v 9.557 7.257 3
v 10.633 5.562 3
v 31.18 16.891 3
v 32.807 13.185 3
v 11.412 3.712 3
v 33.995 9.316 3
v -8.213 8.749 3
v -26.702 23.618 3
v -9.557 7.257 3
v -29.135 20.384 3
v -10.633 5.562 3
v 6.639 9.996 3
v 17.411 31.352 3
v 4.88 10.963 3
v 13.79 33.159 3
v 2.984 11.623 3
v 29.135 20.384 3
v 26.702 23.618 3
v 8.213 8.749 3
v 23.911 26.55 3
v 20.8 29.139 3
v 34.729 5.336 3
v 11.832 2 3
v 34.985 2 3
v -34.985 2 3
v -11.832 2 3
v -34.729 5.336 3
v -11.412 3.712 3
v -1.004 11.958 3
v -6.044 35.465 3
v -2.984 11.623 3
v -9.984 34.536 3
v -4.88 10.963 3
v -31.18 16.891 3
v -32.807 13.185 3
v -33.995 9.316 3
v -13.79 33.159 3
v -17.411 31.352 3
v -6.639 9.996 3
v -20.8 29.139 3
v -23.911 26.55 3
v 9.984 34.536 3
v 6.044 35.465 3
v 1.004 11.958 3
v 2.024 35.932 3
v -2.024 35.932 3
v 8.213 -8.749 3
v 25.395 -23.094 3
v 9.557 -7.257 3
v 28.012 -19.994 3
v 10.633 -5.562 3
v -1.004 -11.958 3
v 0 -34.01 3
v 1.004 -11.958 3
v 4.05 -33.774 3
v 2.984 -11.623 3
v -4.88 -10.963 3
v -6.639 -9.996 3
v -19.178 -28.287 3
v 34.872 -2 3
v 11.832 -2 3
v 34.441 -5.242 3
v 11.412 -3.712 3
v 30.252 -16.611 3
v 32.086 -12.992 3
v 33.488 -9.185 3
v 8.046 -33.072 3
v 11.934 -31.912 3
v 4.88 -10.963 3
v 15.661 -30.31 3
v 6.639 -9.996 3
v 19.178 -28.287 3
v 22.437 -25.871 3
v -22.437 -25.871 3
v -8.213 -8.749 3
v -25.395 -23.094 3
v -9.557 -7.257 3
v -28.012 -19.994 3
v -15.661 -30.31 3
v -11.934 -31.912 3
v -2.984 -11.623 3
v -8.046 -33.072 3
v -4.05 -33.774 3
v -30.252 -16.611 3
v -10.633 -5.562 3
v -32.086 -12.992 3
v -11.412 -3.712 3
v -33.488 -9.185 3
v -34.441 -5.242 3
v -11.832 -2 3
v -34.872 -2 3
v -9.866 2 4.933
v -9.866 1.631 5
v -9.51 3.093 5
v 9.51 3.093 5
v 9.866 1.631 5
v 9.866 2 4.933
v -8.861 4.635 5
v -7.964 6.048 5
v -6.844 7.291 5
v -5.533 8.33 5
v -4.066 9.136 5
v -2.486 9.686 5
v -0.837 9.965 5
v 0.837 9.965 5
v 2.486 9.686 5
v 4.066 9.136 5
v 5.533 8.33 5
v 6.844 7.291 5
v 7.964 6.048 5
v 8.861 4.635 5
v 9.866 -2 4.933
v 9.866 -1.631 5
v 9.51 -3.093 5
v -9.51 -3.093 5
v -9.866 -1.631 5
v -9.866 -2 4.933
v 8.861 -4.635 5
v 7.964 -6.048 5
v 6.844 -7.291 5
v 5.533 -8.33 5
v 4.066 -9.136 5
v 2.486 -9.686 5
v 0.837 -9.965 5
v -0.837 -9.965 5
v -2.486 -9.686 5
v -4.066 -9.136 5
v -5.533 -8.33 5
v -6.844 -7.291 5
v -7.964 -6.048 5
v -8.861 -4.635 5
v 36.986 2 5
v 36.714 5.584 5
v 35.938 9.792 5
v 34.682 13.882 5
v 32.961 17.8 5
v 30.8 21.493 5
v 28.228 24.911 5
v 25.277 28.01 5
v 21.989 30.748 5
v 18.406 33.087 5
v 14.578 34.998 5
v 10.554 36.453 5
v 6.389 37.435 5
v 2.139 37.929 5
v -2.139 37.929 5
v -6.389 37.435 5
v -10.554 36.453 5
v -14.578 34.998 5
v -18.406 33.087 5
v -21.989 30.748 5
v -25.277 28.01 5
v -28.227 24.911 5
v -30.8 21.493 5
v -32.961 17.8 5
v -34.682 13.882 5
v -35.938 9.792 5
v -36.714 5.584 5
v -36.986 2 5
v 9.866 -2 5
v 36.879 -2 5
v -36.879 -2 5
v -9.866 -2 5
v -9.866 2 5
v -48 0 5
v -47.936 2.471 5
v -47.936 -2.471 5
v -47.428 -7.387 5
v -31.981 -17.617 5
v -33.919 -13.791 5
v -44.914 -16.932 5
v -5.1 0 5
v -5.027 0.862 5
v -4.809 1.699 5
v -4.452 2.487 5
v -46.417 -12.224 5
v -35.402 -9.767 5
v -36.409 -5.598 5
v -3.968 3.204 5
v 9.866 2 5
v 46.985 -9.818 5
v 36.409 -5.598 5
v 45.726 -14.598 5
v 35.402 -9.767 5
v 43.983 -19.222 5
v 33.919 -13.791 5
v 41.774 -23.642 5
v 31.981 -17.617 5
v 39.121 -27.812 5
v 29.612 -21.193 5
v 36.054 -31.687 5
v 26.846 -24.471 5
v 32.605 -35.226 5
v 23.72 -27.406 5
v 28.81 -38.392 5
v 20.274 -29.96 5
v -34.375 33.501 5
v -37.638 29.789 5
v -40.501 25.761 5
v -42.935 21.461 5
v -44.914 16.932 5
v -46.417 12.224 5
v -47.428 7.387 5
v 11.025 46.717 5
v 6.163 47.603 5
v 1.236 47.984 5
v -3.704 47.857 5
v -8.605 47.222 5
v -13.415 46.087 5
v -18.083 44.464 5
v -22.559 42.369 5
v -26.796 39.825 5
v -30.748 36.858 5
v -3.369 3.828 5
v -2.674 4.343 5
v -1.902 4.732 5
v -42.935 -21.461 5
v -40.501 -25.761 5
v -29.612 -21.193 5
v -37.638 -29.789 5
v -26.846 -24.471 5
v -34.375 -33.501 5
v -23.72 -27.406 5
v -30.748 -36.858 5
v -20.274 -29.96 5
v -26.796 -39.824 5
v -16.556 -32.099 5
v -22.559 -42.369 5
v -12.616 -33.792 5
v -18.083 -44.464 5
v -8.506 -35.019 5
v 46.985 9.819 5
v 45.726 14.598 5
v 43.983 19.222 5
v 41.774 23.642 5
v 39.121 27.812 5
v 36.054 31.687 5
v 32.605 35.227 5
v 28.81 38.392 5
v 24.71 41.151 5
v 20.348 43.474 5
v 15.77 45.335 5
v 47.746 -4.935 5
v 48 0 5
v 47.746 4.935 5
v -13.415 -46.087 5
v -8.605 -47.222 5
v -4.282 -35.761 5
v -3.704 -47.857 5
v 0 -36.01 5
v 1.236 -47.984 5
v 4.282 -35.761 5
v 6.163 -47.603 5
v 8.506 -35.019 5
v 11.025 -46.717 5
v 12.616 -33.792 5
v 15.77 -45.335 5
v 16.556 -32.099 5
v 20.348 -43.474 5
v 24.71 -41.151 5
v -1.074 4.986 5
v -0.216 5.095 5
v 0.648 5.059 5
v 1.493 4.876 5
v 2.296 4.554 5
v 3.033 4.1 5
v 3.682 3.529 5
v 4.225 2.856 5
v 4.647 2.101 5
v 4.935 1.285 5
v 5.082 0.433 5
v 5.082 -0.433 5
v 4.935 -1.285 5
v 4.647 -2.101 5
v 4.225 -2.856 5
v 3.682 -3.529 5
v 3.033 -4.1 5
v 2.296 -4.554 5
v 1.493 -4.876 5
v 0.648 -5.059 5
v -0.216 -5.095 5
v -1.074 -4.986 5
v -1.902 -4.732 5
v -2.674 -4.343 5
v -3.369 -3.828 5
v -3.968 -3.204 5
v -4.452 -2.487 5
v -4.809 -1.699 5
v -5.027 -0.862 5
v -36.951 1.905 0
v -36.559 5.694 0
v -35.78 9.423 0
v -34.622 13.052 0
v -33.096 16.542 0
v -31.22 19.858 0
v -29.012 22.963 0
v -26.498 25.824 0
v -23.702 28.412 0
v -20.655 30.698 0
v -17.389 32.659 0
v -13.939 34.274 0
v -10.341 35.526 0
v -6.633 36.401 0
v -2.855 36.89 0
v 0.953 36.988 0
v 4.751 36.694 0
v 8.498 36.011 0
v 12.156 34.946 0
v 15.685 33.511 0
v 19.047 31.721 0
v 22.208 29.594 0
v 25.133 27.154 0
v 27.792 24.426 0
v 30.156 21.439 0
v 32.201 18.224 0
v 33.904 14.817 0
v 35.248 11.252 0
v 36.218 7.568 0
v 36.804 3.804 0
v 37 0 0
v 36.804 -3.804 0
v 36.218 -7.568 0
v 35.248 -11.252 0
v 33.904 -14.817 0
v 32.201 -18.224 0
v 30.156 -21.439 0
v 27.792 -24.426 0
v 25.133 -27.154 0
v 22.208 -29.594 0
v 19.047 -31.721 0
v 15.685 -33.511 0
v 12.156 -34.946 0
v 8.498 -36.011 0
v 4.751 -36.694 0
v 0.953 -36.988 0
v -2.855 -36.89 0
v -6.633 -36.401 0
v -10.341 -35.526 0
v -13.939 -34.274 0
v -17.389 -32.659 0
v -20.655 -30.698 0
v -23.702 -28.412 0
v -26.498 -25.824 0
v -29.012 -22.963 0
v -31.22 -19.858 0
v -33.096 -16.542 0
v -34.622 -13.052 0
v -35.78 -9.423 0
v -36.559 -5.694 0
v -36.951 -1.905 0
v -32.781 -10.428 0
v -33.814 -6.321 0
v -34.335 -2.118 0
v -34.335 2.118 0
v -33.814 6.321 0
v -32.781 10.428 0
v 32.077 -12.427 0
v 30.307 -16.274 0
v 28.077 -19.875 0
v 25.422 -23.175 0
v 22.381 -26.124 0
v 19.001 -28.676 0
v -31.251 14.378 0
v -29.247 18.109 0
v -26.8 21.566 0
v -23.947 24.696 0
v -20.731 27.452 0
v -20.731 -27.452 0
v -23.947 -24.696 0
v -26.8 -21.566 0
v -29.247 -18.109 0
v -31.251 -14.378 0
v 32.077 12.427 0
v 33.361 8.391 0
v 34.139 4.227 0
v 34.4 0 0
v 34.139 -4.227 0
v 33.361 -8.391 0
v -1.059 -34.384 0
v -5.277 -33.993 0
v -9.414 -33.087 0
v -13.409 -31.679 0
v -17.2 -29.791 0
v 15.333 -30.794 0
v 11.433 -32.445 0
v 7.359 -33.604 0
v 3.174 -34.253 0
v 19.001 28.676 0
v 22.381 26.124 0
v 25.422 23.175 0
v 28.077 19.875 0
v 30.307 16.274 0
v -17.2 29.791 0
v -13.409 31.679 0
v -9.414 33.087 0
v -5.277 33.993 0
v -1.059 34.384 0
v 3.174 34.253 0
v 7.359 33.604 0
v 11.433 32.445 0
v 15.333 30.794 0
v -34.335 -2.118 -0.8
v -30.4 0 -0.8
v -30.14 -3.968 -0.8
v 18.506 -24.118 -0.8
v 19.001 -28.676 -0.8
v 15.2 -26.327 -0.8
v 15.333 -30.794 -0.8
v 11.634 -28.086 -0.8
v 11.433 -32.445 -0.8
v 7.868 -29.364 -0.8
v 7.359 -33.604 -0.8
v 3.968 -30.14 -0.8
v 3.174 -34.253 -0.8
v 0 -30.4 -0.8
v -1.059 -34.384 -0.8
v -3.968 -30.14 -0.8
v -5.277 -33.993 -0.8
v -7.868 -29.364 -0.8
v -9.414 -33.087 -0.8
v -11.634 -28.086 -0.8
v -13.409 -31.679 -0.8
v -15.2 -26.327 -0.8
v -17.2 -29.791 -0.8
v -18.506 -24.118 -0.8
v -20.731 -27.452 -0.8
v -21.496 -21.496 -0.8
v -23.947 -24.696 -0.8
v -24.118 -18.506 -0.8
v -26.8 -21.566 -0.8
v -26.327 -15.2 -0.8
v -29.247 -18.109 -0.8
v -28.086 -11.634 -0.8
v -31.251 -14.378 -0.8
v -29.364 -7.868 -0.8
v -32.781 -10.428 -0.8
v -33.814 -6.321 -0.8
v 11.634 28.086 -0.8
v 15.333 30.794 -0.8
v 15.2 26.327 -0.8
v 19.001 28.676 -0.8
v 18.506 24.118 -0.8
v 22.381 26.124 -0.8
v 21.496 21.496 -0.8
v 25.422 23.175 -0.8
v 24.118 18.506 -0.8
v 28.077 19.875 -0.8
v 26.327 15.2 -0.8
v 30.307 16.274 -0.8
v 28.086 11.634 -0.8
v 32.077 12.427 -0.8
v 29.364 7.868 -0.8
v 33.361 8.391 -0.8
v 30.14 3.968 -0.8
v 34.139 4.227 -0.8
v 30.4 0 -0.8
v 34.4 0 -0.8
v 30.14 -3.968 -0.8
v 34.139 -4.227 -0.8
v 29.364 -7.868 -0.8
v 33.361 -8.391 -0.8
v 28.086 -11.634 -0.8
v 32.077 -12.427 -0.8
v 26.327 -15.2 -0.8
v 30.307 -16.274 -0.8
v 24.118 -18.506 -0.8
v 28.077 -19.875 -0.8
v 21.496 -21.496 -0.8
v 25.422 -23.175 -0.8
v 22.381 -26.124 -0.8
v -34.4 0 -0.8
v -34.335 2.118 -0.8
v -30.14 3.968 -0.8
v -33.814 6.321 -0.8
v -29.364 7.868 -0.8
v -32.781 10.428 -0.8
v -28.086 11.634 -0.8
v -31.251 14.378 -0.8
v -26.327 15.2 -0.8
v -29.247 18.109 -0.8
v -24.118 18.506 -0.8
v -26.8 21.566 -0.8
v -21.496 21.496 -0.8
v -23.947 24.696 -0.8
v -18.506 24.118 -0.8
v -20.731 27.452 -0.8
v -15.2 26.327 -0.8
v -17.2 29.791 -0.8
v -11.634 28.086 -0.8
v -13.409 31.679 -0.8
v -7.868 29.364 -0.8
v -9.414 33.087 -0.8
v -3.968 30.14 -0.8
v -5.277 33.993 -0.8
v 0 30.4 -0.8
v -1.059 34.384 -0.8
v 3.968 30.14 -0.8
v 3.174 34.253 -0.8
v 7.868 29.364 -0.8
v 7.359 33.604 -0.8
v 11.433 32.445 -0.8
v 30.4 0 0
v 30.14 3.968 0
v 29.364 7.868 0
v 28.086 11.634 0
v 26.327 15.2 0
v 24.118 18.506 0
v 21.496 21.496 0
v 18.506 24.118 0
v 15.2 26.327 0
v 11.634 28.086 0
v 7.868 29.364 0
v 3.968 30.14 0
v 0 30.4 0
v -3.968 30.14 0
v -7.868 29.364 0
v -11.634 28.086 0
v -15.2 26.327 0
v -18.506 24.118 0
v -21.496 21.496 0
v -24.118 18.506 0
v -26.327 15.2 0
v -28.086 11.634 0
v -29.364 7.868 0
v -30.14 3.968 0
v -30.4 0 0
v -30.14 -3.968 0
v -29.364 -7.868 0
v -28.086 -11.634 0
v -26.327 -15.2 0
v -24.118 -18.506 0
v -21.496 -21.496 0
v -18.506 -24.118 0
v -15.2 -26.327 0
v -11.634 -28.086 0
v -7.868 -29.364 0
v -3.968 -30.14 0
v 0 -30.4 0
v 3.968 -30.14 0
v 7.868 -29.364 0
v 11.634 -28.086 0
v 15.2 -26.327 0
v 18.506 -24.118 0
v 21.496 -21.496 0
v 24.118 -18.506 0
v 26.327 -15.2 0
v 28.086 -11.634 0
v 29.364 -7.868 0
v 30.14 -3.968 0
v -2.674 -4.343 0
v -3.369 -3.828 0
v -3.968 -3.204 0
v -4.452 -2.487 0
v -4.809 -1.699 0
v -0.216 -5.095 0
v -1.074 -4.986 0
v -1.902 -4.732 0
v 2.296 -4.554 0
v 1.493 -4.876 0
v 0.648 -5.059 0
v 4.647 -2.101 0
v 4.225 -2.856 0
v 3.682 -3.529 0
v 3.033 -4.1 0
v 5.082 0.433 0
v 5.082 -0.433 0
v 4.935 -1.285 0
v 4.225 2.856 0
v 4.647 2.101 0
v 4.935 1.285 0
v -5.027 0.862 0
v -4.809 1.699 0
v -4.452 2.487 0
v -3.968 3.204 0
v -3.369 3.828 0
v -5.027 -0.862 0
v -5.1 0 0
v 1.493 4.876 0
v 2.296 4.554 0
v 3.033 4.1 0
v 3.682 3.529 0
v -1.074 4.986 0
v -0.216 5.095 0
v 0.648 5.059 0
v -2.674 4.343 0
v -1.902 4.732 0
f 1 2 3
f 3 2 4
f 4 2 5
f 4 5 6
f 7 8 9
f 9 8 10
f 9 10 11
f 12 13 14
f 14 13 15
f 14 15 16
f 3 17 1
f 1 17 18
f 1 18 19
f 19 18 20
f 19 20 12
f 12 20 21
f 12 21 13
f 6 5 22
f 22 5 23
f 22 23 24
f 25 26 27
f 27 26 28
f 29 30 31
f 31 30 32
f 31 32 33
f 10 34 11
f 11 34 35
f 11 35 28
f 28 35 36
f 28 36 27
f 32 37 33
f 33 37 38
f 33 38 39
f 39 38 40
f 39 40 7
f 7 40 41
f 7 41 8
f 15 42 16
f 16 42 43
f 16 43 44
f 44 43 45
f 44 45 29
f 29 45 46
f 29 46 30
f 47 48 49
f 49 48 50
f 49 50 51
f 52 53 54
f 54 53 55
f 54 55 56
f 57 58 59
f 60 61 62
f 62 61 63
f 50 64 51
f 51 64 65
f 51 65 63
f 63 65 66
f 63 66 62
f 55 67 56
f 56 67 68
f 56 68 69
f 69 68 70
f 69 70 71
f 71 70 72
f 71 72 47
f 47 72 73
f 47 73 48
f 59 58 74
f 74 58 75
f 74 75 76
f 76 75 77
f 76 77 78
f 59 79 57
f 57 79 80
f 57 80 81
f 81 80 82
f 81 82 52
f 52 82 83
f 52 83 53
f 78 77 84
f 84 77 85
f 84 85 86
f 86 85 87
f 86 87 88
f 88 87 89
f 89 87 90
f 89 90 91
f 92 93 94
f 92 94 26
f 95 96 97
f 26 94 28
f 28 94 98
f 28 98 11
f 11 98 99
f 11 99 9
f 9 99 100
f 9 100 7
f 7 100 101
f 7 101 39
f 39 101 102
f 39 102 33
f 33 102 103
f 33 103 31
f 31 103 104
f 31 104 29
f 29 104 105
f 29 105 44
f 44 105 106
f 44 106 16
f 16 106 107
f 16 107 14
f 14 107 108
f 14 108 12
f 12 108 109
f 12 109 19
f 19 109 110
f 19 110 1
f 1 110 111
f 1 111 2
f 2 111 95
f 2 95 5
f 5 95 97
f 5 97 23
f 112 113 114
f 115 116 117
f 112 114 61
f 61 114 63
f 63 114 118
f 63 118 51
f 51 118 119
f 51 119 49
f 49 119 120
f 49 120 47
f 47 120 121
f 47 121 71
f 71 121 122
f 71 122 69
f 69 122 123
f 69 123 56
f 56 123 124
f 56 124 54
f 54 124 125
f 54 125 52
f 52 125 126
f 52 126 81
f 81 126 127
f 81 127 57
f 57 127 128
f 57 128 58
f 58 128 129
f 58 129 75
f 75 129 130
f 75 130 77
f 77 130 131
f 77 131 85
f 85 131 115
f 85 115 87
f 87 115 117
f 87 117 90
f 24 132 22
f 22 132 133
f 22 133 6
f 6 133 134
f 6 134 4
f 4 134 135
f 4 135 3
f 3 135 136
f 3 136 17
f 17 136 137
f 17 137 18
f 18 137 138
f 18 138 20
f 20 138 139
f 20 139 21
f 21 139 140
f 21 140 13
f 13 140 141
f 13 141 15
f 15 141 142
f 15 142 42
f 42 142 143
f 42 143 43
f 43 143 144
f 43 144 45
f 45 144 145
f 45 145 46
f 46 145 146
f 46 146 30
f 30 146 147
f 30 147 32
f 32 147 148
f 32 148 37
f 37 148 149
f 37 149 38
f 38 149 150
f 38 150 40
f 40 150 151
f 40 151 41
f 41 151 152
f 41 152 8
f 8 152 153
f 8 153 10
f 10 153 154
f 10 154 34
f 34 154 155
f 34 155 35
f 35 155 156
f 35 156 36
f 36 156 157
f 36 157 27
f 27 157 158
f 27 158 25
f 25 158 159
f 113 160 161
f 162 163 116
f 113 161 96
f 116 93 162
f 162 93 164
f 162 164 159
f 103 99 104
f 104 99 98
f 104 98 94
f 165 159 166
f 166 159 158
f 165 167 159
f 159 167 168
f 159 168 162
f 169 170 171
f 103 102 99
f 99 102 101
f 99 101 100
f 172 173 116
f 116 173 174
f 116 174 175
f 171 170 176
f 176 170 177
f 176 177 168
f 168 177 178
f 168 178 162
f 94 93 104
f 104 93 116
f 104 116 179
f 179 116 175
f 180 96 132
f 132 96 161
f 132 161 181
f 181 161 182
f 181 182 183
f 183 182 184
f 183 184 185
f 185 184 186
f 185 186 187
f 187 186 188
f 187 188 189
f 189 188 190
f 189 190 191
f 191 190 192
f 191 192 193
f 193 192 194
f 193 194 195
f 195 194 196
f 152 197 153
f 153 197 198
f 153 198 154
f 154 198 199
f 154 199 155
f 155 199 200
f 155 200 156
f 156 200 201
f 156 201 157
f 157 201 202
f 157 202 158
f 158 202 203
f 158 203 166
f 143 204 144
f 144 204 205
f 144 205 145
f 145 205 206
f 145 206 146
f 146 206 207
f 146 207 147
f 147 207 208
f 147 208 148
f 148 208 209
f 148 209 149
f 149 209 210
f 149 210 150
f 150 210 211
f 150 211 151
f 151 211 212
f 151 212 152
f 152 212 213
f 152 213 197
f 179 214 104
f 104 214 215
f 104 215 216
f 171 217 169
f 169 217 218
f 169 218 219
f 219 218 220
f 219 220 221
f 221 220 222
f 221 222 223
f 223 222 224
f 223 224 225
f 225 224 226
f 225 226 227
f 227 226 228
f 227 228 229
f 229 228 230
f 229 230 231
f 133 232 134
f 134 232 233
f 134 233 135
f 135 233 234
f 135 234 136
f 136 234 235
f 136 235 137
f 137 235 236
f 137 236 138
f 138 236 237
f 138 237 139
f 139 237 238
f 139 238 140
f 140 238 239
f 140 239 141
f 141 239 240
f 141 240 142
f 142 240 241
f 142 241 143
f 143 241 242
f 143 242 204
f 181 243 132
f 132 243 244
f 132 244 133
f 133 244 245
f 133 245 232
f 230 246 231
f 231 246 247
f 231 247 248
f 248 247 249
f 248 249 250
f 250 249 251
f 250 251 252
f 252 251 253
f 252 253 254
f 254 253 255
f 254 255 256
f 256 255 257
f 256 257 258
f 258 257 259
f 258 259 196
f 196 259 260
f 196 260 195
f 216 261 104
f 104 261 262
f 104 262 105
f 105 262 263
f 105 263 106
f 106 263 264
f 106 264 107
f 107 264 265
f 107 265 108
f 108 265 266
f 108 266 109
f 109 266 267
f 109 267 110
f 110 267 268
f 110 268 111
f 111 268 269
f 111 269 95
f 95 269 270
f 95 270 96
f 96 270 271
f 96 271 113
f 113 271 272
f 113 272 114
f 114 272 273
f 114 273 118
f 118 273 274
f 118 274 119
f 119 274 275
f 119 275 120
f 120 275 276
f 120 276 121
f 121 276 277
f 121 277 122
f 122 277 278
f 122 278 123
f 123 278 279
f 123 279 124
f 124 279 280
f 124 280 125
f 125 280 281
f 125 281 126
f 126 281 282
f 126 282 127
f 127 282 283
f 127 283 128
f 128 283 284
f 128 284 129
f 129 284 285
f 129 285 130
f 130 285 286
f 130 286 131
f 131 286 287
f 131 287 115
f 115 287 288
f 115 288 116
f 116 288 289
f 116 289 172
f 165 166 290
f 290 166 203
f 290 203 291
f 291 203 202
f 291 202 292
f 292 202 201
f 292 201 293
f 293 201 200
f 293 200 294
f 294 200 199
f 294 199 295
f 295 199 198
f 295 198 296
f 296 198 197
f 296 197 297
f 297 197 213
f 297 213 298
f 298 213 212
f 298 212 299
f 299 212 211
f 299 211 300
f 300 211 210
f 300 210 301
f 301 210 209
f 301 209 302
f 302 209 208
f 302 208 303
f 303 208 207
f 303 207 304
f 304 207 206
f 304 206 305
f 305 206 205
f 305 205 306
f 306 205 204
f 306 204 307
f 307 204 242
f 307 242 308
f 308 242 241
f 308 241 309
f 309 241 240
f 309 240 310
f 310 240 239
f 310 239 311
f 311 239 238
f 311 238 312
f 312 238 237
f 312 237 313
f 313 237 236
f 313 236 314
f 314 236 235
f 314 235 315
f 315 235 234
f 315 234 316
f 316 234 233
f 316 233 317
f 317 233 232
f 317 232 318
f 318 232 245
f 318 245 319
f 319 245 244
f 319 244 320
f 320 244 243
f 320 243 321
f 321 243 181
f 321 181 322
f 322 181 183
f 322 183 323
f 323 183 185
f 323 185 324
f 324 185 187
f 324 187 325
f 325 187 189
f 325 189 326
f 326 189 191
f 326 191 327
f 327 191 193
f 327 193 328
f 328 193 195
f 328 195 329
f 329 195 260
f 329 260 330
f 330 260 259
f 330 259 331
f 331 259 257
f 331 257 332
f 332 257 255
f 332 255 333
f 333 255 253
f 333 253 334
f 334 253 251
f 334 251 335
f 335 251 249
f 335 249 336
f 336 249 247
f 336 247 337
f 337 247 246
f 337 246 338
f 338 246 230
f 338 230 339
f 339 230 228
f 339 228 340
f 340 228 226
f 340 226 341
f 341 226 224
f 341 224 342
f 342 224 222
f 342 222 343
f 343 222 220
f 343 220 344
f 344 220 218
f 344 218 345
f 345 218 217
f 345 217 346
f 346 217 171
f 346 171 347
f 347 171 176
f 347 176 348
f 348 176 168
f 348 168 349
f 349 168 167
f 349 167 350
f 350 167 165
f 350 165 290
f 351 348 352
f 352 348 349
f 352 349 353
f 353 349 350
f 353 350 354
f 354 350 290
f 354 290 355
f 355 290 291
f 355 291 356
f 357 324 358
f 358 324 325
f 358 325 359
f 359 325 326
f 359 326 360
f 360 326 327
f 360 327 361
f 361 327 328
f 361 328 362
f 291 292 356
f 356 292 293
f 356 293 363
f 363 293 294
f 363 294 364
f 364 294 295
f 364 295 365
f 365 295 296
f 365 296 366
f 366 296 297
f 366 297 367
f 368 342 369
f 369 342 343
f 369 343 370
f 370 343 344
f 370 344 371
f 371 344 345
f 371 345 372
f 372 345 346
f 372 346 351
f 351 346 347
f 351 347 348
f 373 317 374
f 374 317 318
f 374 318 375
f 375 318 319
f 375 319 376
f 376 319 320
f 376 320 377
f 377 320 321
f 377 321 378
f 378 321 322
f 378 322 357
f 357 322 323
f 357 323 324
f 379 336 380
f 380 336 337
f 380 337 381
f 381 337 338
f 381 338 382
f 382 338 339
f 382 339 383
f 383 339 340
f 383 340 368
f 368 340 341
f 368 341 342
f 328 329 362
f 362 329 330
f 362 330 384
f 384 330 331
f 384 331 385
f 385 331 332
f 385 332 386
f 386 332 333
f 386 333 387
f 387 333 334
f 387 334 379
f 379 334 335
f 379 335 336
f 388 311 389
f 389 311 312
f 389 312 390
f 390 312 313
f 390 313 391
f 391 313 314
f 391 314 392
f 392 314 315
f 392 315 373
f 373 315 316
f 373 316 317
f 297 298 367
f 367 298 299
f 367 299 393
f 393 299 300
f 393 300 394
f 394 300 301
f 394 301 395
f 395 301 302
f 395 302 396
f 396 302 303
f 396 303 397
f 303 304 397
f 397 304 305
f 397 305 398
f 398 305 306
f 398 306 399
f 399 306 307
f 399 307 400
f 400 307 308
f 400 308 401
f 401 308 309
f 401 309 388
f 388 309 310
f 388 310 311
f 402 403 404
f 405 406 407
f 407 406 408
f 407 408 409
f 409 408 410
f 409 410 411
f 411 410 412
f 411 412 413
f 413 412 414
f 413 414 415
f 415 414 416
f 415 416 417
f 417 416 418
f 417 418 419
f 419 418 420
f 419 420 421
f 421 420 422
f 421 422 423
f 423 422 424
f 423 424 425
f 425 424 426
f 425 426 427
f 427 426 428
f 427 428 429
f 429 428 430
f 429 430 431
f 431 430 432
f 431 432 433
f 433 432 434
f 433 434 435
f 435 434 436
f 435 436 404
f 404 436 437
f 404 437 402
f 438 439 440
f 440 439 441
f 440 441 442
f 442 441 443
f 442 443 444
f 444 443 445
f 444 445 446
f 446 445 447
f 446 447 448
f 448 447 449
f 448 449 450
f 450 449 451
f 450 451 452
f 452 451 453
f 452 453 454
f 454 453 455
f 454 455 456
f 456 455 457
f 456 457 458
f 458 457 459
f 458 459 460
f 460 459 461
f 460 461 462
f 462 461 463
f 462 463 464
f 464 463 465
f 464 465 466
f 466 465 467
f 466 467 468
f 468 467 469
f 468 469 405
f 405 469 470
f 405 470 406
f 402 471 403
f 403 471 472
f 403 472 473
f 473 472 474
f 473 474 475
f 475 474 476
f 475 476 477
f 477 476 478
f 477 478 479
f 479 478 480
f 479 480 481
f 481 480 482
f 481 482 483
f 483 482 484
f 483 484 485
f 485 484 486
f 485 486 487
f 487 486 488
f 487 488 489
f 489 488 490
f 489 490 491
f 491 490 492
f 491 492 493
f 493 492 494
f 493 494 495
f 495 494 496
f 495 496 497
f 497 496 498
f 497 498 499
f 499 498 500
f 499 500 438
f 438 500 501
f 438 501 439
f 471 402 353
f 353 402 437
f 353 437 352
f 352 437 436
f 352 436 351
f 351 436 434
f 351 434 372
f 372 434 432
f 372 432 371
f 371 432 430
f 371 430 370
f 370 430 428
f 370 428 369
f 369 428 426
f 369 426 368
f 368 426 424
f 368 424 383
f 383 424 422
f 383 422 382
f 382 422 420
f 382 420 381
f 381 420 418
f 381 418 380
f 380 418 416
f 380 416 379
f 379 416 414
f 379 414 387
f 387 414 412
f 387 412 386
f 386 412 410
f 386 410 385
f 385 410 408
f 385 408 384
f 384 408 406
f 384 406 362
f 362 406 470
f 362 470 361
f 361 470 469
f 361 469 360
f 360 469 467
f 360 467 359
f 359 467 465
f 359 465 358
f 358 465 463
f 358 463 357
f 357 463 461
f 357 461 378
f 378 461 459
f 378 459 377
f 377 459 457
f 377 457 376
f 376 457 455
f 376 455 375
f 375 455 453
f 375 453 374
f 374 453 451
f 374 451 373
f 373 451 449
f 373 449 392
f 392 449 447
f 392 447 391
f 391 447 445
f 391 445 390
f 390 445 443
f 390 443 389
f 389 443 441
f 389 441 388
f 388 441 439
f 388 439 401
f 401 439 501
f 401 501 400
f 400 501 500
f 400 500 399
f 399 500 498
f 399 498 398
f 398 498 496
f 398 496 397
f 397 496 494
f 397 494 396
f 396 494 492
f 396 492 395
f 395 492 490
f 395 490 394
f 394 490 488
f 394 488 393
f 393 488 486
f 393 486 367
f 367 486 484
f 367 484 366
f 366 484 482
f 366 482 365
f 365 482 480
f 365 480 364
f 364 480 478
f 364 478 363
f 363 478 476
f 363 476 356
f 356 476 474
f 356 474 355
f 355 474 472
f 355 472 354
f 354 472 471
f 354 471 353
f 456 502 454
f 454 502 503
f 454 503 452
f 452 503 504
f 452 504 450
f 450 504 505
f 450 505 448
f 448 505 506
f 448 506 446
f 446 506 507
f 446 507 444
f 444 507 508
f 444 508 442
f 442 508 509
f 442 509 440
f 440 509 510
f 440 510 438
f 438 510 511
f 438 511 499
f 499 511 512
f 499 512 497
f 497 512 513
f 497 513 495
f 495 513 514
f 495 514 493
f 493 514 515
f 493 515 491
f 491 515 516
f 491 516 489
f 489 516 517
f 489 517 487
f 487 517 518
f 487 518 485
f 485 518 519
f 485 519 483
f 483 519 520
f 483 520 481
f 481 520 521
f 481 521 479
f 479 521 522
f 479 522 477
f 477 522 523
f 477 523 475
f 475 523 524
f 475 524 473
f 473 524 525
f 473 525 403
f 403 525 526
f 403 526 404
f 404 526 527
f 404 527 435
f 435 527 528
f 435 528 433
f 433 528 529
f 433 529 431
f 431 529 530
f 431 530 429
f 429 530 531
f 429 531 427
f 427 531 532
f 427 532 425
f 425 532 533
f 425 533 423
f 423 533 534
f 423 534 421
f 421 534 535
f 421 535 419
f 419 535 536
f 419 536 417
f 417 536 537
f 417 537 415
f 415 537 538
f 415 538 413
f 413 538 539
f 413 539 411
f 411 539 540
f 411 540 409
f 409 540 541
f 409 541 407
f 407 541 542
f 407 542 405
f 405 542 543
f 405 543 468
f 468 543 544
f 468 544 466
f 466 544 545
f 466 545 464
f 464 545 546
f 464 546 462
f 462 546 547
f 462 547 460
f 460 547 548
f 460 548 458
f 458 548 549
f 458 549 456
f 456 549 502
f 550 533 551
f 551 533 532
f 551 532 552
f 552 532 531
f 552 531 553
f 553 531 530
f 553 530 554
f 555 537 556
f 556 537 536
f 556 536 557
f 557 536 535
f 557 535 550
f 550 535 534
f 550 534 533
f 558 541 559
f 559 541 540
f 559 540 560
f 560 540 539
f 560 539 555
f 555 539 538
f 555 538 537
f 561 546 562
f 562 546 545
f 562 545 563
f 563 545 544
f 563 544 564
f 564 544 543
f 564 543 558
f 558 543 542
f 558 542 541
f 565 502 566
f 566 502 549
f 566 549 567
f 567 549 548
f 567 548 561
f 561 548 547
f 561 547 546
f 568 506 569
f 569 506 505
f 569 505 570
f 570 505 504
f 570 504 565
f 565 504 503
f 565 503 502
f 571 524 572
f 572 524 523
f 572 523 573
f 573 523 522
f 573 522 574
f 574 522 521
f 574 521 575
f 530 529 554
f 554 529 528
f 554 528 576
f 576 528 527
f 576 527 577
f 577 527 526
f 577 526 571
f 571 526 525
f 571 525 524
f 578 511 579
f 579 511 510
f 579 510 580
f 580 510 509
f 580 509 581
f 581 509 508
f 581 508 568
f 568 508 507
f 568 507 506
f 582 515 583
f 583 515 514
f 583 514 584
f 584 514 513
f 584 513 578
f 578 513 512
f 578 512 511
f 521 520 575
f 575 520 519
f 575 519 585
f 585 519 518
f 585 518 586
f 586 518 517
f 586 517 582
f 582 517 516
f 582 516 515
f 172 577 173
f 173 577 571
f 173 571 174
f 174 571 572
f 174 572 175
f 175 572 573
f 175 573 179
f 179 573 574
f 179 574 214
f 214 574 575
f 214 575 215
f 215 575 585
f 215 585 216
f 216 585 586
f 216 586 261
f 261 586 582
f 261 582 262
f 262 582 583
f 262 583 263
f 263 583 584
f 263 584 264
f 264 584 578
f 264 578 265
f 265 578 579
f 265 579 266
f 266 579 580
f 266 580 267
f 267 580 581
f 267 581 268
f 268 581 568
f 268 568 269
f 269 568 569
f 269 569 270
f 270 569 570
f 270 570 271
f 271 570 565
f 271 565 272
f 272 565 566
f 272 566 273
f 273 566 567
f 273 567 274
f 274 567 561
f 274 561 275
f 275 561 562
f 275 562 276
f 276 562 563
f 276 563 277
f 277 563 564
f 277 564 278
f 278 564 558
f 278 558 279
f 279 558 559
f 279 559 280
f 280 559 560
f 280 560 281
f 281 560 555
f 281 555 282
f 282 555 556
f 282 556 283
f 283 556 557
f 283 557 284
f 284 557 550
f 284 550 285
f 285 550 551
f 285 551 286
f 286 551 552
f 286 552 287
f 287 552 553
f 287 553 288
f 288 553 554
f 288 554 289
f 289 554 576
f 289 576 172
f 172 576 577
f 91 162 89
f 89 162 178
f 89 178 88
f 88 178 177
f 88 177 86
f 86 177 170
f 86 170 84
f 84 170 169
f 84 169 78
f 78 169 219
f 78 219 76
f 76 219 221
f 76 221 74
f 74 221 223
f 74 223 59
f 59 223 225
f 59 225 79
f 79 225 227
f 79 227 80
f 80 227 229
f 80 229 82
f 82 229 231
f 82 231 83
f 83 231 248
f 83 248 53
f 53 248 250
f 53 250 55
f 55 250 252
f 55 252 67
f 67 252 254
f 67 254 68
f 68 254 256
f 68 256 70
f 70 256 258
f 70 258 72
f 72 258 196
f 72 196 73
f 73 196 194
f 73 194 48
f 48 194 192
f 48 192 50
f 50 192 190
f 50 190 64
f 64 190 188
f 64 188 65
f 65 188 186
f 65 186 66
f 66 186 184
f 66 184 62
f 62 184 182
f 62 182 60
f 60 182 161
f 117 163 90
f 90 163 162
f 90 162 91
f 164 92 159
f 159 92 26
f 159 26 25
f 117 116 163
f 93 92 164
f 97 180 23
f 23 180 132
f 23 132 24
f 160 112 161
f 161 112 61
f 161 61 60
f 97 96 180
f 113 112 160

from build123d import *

# Parameters (mm, degrees)
SKETCH_1_R               = 37
EXTRUDE_1_DEPTH          = 5
SKETCH_4_R               = 34.4
SKETCH_4_R_2             = 30.4
EXTRUDE_2_DEPTH          = 0.8
SKETCH_5_R               = 5.1
CUT_EXTRUDE_1_DEPTH      = 69.066144301
SKETCH_6_R               = 37
SKETCH_6_R_2             = 10
CUT_EXTRUDE_2_DEPTH      = 2
CUT_EXTRUDE_2_DRAFT      = -45
SKETCH_7_W               = 25.320983541
SKETCH_7_H               = 4
EXTRUDE_3_DEPTH          = 2
SKETCH_9_W               = 2
SKETCH_9_H               = 4
EXTRUDE_5_DEPTH          = 5
PATTERN_CIRCULAR_1_COUNT = 2


with BuildPart() as part:
    # 스케치1 → 보스-돌출1 (new body)
    with BuildSketch(Plane.XY):
        Circle(SKETCH_1_R)
    extrude(amount=EXTRUDE_1_DEPTH)

    # 스케치3 → 회전1 (revolve)
    with BuildSketch(Plane(origin=(0, 0, 0), x_dir=(1, 0, 0), z_dir=(0, 1, 0)), mode=Mode.PRIVATE) as revolve_1_sk:
        Polygon((-37, -5), (-37, 0), (-48, -5), align=None)
    revolve(revolve_1_sk.sketch.rotate(Axis((0, 0, -6.462572401), (0, 0, 1)), 180), axis=Axis((0, 0, -6.462572401), (0, 0, 1)))

    # 스케치4 → 보스-돌출2 (add)
    with BuildSketch(Plane(origin=(0, 0, 0), x_dir=(-1, 0, 0), z_dir=(0, 0, -1))):
        with Locations(Location((0, 0, 0), (0, 0, 180))):
            Circle(SKETCH_4_R)
        Circle(SKETCH_4_R_2, mode=Mode.SUBTRACT)
    extrude(amount=EXTRUDE_2_DEPTH)

    # 스케치5 → 컷-돌출1 (cut, through all)
    with BuildSketch(Plane(origin=(0, 0, 0), x_dir=(-1, 0, 0), z_dir=(0, 0, -1))):
        Circle(SKETCH_5_R)
    extrude(amount=-CUT_EXTRUDE_1_DEPTH, mode=Mode.SUBTRACT)


with BuildPart() as cut_extrude_2_tool:
    # 스케치6 → 컷-돌출2 (with draft: the straight prism first)
    with BuildSketch(Plane.XY.offset(5)):
        with Locations((0, 0.990500037)):
            Circle(SKETCH_6_R)
        Circle(SKETCH_6_R_2, mode=Mode.SUBTRACT)
    extrude(amount=-CUT_EXTRUDE_2_DEPTH)
    # 컷-돌출2: the draft: its side faces are tilted about the plane it starts from
    cut_extrude_2_sides = [cut_extrude_2_tool.faces().sort_by_distance(p)[0] for p in [
        (-37, 0.990500037, 4),
        (-10, 0, 4),
    ]]
    draft(cut_extrude_2_sides, Plane.XY.offset(5), CUT_EXTRUDE_2_DRAFT)


with BuildPart() as part_1:
    add(part.part)

    # 컷-돌출2: cut by cut_extrude_2_tool
    add(cut_extrude_2_tool.part, mode=Mode.SUBTRACT)

    # 스케치7 → 보스-돌출3 (add)
    with BuildSketch(Plane.XY.offset(5)):
        with Locations((-27.526560518, 0)):
            Rectangle(SKETCH_7_W, SKETCH_7_H)
    extrude_3 = extrude(amount=-EXTRUDE_3_DEPTH)

    # 스케치9 → 보스-돌출5 (add)
    with BuildSketch(Plane(origin=(-14.866068747, 0, 0), x_dir=(0, 0, -1), z_dir=(1, 0, 0))):
        with Locations((-4, 0)):
            Rectangle(SKETCH_9_W, SKETCH_9_H)
    extrude_5 = extrude(amount=EXTRUDE_5_DEPTH)

    # 원형 패턴1: 보스-돌출3, 보스-돌출5 ×2 about axis
    pattern_circular_1_axis = Axis((0, 0, 0), (0, 0, 1))
    add([extrude_3.rotate(pattern_circular_1_axis, i * 360 / PATTERN_CIRCULAR_1_COUNT) for i in range(1, PATTERN_CIRCULAR_1_COUNT)])
    add([extrude_5.rotate(pattern_circular_1_axis, i * 360 / PATTERN_CIRCULAR_1_COUNT) for i in range(1, PATTERN_CIRCULAR_1_COUNT)])


solid = part_1.part
